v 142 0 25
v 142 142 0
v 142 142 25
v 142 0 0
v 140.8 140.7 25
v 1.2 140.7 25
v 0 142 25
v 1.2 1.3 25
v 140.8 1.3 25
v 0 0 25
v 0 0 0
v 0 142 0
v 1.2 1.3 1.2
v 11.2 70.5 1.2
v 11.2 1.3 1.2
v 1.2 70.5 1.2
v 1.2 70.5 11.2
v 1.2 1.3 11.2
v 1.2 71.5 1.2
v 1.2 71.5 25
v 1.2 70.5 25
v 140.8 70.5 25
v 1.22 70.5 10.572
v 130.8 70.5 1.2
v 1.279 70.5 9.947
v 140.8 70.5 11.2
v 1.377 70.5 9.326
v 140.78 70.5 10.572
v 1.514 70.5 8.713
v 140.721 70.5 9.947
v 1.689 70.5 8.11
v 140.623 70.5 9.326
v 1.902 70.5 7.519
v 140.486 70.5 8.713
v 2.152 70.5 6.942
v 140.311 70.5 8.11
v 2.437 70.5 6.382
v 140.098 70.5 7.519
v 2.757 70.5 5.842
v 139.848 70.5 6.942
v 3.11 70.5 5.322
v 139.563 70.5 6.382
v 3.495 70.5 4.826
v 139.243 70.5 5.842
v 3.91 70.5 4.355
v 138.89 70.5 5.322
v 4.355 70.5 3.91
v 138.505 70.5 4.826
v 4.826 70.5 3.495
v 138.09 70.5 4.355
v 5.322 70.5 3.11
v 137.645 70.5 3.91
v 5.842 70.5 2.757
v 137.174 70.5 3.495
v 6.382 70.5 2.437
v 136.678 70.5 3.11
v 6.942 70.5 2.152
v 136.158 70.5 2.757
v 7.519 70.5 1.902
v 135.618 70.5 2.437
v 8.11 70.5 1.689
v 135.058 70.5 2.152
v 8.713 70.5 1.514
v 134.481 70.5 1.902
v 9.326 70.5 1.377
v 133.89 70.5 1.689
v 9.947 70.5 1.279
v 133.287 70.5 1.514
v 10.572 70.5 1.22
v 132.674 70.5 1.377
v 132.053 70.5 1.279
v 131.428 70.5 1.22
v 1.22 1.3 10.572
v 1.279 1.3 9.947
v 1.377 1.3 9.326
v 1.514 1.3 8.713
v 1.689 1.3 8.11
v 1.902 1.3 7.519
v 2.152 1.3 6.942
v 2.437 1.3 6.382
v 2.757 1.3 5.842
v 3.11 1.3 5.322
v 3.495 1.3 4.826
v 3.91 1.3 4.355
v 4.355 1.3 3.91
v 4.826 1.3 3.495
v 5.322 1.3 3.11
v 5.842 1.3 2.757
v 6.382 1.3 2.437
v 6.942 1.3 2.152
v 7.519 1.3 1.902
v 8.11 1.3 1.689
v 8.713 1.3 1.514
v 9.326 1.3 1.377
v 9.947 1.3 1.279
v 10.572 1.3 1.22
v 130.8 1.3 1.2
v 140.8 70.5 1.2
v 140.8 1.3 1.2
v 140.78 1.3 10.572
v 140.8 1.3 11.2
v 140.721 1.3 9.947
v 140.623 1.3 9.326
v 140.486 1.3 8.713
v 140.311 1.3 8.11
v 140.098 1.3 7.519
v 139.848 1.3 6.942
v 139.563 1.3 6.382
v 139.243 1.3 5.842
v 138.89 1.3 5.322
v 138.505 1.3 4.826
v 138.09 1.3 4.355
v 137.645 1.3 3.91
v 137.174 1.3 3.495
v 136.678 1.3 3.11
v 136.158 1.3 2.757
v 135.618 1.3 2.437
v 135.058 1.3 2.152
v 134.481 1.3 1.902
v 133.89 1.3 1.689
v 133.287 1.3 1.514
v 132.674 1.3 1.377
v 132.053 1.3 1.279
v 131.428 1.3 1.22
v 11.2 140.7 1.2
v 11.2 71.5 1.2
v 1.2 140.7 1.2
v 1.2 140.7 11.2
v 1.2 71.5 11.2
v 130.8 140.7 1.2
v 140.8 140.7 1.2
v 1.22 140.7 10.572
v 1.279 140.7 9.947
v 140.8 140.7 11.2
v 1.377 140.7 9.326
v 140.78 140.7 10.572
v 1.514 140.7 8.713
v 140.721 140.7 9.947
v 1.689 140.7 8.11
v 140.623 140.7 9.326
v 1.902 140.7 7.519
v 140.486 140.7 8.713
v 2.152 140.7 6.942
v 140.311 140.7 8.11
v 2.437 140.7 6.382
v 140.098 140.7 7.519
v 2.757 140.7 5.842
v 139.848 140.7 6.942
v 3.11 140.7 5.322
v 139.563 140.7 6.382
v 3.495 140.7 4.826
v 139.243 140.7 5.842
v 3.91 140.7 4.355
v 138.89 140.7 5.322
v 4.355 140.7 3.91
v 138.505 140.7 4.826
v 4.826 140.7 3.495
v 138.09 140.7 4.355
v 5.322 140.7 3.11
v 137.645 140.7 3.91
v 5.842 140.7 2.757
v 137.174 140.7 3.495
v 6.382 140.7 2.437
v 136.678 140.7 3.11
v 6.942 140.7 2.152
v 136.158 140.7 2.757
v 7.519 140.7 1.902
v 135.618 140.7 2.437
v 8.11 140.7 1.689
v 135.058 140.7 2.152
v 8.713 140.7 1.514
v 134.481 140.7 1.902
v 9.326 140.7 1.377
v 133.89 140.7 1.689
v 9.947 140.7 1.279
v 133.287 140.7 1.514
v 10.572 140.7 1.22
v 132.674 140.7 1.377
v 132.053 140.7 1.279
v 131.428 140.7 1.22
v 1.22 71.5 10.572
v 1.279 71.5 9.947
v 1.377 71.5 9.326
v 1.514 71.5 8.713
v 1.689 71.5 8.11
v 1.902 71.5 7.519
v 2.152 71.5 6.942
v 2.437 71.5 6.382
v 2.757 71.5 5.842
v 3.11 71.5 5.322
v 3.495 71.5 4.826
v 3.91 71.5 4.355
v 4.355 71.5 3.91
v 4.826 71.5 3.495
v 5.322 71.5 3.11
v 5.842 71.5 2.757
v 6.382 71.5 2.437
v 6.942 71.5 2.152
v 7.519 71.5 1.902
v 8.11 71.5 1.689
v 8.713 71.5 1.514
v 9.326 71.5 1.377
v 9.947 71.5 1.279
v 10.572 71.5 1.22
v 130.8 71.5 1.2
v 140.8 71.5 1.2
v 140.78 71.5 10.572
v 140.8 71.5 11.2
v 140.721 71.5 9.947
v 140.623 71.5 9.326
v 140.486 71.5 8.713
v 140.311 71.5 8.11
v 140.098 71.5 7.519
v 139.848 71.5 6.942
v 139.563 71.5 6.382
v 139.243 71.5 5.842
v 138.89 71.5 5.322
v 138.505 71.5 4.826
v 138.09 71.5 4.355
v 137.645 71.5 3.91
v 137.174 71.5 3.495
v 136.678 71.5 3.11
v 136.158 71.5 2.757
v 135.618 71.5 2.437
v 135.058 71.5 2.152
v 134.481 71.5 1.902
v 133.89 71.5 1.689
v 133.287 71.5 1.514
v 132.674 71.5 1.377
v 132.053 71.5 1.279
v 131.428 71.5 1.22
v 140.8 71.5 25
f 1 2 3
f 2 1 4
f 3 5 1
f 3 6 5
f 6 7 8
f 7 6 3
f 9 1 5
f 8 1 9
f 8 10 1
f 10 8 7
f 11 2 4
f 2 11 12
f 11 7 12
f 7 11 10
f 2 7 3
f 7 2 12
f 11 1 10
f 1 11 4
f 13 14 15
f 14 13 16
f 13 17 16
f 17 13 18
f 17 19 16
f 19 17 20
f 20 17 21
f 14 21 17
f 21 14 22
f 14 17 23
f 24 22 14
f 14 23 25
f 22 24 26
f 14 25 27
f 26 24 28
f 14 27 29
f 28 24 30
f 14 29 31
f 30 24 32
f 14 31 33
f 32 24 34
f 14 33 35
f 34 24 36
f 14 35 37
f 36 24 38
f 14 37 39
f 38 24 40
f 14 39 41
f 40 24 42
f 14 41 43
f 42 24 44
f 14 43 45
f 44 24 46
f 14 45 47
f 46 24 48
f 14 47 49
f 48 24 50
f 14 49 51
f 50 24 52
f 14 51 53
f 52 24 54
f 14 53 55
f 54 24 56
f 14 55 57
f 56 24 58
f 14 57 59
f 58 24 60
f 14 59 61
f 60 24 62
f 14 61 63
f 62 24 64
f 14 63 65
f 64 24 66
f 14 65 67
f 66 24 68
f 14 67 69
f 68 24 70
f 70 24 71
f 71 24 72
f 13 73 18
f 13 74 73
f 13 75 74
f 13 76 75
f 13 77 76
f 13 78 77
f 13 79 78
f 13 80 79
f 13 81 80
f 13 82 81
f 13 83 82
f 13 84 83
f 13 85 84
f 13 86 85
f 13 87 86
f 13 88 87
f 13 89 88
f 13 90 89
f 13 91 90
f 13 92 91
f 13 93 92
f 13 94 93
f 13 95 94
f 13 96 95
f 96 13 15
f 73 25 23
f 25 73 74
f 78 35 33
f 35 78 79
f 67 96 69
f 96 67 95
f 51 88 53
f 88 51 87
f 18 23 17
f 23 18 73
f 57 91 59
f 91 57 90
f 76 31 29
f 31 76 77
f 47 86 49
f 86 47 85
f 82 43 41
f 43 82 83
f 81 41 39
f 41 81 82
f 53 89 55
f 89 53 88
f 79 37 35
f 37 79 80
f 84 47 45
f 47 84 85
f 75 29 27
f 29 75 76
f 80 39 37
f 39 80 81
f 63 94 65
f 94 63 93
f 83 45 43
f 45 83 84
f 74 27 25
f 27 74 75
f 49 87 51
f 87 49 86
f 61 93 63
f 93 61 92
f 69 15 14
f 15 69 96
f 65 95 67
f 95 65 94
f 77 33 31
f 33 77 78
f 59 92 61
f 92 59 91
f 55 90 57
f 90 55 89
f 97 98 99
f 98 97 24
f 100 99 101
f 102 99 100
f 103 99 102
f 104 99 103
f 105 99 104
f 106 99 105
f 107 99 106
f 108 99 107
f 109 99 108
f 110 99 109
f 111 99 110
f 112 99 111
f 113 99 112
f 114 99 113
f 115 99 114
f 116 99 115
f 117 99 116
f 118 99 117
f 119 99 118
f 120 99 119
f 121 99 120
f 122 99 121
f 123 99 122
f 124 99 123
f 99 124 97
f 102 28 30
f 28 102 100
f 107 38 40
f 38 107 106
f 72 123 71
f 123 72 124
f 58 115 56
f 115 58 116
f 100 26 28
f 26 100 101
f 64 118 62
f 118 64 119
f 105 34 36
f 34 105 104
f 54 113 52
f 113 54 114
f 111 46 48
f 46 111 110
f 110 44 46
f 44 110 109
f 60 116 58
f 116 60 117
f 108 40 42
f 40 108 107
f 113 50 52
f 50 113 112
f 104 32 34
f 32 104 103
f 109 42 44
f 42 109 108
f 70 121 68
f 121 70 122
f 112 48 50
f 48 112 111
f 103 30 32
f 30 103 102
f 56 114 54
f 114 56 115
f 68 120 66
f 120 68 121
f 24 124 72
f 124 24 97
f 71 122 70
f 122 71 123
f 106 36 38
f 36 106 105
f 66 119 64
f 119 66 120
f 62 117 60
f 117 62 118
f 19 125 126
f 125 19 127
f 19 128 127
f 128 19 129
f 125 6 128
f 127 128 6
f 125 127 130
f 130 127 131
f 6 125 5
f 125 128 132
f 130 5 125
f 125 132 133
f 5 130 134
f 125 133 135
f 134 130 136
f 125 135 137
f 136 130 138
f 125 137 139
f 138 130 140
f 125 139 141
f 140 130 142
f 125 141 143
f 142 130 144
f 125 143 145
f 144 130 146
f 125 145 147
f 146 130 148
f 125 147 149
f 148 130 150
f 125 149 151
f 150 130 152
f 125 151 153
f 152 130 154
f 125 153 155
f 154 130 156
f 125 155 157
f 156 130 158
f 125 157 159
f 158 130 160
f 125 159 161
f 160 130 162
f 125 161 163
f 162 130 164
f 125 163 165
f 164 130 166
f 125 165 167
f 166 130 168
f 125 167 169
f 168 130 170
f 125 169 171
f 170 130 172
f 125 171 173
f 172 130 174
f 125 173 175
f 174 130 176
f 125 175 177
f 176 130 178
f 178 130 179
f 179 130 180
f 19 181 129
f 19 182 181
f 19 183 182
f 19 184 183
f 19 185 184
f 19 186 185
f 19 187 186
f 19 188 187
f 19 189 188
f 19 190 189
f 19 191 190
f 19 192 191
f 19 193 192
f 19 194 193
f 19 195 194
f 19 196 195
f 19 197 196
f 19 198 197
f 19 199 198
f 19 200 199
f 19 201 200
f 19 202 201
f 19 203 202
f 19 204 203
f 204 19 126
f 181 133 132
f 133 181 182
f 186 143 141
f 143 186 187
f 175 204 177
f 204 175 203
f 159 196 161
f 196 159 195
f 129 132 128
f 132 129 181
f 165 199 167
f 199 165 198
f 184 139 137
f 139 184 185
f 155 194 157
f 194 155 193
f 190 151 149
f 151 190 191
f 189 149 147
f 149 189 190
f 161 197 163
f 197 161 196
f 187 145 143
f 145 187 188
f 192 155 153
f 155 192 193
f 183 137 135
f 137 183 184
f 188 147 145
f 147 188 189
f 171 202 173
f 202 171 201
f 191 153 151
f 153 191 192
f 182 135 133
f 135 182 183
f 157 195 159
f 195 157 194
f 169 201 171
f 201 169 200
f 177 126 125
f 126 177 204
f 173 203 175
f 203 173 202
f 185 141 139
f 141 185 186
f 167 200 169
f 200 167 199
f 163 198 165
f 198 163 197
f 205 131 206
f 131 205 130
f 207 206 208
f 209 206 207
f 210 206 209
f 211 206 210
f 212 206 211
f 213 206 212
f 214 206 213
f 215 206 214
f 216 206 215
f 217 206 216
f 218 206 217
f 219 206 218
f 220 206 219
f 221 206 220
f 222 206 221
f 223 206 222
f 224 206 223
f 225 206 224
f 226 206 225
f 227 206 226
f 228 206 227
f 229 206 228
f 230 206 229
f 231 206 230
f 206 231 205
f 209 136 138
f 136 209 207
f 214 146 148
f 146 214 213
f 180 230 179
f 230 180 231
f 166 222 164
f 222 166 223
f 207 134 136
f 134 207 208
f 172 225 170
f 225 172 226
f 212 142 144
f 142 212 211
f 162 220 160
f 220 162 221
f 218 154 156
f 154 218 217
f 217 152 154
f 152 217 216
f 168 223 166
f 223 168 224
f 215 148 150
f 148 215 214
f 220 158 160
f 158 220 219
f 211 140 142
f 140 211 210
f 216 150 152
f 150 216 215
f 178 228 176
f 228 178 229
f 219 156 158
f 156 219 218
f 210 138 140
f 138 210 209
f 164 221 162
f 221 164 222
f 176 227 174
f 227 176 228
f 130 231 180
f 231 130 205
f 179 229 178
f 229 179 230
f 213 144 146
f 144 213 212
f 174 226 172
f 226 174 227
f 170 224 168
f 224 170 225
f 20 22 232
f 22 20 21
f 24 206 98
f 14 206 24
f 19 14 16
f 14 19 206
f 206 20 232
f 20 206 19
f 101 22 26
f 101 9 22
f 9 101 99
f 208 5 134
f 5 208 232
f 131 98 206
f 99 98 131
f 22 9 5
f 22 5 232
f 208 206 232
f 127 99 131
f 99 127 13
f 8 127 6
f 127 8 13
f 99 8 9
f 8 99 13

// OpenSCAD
include <boardgame_insert_toolkit_lib.2.scad>;

// determines whether lids are output.
g_b_print_lid = true;

// determines whether boxes are output.
g_b_print_box = true; 

// Focus on one box
g_isolated_print_box = ""; 

// Used to visualize how all of the boxes fit together. 
g_b_visualization = false;          
        
// this is the outer wall thickness. 
//Default = 1.5mm
g_wall_thickness = 1.2;

// The tolerance value is extra space put between planes of the lid and box that fit together.
// Increase the tolerance to loosen the fit and decrease it to tighten it.
//
// Note that the tolerance is applied exclusively to the lid.
// So if the lid is too tight or too loose, change this value ( up for looser fit, down for tighter fit ) and 
// you only need to reprint the lid.
// 
// The exception is the stackable box, where the bottom of the box is the lid of the box below,
// in which case the tolerance also affects that box bottom.
//
g_tolerance = 0.15;

// This adjusts the position of the lid detents downward. 
// The larger the value, the bigger the gap between the lid and the box.
g_tolerance_detents_pos = 0.1;

aw_box_x = 142.0; // 284 / 2
aw_box_y = 142.0; //
aw_box_z = 25.0;

aw_compartment_size_x = (aw_box_x - 2 * g_wall_thickness);
aw_compartment_size_y = (aw_box_y - 3 * g_wall_thickness) / 2;

data =
  [
    [
      "3x3 box",
      [
        [ BOX_SIZE_XYZ, [aw_box_x, aw_box_y, aw_box_z] ],
        [ BOX_NO_LID_B, t],
        [
          BOX_COMPONENT,
          [
            [ CMP_SHAPE, FILLET ],
            [ CMP_NUM_COMPARTMENTS_XY, [1, 2] ],
            [
              CMP_COMPARTMENT_SIZE_XYZ,
              [
                aw_compartment_size_x,
                aw_compartment_size_y,
                aw_box_z - 1 * g_wall_thickness
              ]
            ],
            [ POSITION_XY, [ CENTER, CENTER ] ],
          ]
        ],
      ]
    ]
  ];


MakeAll();
